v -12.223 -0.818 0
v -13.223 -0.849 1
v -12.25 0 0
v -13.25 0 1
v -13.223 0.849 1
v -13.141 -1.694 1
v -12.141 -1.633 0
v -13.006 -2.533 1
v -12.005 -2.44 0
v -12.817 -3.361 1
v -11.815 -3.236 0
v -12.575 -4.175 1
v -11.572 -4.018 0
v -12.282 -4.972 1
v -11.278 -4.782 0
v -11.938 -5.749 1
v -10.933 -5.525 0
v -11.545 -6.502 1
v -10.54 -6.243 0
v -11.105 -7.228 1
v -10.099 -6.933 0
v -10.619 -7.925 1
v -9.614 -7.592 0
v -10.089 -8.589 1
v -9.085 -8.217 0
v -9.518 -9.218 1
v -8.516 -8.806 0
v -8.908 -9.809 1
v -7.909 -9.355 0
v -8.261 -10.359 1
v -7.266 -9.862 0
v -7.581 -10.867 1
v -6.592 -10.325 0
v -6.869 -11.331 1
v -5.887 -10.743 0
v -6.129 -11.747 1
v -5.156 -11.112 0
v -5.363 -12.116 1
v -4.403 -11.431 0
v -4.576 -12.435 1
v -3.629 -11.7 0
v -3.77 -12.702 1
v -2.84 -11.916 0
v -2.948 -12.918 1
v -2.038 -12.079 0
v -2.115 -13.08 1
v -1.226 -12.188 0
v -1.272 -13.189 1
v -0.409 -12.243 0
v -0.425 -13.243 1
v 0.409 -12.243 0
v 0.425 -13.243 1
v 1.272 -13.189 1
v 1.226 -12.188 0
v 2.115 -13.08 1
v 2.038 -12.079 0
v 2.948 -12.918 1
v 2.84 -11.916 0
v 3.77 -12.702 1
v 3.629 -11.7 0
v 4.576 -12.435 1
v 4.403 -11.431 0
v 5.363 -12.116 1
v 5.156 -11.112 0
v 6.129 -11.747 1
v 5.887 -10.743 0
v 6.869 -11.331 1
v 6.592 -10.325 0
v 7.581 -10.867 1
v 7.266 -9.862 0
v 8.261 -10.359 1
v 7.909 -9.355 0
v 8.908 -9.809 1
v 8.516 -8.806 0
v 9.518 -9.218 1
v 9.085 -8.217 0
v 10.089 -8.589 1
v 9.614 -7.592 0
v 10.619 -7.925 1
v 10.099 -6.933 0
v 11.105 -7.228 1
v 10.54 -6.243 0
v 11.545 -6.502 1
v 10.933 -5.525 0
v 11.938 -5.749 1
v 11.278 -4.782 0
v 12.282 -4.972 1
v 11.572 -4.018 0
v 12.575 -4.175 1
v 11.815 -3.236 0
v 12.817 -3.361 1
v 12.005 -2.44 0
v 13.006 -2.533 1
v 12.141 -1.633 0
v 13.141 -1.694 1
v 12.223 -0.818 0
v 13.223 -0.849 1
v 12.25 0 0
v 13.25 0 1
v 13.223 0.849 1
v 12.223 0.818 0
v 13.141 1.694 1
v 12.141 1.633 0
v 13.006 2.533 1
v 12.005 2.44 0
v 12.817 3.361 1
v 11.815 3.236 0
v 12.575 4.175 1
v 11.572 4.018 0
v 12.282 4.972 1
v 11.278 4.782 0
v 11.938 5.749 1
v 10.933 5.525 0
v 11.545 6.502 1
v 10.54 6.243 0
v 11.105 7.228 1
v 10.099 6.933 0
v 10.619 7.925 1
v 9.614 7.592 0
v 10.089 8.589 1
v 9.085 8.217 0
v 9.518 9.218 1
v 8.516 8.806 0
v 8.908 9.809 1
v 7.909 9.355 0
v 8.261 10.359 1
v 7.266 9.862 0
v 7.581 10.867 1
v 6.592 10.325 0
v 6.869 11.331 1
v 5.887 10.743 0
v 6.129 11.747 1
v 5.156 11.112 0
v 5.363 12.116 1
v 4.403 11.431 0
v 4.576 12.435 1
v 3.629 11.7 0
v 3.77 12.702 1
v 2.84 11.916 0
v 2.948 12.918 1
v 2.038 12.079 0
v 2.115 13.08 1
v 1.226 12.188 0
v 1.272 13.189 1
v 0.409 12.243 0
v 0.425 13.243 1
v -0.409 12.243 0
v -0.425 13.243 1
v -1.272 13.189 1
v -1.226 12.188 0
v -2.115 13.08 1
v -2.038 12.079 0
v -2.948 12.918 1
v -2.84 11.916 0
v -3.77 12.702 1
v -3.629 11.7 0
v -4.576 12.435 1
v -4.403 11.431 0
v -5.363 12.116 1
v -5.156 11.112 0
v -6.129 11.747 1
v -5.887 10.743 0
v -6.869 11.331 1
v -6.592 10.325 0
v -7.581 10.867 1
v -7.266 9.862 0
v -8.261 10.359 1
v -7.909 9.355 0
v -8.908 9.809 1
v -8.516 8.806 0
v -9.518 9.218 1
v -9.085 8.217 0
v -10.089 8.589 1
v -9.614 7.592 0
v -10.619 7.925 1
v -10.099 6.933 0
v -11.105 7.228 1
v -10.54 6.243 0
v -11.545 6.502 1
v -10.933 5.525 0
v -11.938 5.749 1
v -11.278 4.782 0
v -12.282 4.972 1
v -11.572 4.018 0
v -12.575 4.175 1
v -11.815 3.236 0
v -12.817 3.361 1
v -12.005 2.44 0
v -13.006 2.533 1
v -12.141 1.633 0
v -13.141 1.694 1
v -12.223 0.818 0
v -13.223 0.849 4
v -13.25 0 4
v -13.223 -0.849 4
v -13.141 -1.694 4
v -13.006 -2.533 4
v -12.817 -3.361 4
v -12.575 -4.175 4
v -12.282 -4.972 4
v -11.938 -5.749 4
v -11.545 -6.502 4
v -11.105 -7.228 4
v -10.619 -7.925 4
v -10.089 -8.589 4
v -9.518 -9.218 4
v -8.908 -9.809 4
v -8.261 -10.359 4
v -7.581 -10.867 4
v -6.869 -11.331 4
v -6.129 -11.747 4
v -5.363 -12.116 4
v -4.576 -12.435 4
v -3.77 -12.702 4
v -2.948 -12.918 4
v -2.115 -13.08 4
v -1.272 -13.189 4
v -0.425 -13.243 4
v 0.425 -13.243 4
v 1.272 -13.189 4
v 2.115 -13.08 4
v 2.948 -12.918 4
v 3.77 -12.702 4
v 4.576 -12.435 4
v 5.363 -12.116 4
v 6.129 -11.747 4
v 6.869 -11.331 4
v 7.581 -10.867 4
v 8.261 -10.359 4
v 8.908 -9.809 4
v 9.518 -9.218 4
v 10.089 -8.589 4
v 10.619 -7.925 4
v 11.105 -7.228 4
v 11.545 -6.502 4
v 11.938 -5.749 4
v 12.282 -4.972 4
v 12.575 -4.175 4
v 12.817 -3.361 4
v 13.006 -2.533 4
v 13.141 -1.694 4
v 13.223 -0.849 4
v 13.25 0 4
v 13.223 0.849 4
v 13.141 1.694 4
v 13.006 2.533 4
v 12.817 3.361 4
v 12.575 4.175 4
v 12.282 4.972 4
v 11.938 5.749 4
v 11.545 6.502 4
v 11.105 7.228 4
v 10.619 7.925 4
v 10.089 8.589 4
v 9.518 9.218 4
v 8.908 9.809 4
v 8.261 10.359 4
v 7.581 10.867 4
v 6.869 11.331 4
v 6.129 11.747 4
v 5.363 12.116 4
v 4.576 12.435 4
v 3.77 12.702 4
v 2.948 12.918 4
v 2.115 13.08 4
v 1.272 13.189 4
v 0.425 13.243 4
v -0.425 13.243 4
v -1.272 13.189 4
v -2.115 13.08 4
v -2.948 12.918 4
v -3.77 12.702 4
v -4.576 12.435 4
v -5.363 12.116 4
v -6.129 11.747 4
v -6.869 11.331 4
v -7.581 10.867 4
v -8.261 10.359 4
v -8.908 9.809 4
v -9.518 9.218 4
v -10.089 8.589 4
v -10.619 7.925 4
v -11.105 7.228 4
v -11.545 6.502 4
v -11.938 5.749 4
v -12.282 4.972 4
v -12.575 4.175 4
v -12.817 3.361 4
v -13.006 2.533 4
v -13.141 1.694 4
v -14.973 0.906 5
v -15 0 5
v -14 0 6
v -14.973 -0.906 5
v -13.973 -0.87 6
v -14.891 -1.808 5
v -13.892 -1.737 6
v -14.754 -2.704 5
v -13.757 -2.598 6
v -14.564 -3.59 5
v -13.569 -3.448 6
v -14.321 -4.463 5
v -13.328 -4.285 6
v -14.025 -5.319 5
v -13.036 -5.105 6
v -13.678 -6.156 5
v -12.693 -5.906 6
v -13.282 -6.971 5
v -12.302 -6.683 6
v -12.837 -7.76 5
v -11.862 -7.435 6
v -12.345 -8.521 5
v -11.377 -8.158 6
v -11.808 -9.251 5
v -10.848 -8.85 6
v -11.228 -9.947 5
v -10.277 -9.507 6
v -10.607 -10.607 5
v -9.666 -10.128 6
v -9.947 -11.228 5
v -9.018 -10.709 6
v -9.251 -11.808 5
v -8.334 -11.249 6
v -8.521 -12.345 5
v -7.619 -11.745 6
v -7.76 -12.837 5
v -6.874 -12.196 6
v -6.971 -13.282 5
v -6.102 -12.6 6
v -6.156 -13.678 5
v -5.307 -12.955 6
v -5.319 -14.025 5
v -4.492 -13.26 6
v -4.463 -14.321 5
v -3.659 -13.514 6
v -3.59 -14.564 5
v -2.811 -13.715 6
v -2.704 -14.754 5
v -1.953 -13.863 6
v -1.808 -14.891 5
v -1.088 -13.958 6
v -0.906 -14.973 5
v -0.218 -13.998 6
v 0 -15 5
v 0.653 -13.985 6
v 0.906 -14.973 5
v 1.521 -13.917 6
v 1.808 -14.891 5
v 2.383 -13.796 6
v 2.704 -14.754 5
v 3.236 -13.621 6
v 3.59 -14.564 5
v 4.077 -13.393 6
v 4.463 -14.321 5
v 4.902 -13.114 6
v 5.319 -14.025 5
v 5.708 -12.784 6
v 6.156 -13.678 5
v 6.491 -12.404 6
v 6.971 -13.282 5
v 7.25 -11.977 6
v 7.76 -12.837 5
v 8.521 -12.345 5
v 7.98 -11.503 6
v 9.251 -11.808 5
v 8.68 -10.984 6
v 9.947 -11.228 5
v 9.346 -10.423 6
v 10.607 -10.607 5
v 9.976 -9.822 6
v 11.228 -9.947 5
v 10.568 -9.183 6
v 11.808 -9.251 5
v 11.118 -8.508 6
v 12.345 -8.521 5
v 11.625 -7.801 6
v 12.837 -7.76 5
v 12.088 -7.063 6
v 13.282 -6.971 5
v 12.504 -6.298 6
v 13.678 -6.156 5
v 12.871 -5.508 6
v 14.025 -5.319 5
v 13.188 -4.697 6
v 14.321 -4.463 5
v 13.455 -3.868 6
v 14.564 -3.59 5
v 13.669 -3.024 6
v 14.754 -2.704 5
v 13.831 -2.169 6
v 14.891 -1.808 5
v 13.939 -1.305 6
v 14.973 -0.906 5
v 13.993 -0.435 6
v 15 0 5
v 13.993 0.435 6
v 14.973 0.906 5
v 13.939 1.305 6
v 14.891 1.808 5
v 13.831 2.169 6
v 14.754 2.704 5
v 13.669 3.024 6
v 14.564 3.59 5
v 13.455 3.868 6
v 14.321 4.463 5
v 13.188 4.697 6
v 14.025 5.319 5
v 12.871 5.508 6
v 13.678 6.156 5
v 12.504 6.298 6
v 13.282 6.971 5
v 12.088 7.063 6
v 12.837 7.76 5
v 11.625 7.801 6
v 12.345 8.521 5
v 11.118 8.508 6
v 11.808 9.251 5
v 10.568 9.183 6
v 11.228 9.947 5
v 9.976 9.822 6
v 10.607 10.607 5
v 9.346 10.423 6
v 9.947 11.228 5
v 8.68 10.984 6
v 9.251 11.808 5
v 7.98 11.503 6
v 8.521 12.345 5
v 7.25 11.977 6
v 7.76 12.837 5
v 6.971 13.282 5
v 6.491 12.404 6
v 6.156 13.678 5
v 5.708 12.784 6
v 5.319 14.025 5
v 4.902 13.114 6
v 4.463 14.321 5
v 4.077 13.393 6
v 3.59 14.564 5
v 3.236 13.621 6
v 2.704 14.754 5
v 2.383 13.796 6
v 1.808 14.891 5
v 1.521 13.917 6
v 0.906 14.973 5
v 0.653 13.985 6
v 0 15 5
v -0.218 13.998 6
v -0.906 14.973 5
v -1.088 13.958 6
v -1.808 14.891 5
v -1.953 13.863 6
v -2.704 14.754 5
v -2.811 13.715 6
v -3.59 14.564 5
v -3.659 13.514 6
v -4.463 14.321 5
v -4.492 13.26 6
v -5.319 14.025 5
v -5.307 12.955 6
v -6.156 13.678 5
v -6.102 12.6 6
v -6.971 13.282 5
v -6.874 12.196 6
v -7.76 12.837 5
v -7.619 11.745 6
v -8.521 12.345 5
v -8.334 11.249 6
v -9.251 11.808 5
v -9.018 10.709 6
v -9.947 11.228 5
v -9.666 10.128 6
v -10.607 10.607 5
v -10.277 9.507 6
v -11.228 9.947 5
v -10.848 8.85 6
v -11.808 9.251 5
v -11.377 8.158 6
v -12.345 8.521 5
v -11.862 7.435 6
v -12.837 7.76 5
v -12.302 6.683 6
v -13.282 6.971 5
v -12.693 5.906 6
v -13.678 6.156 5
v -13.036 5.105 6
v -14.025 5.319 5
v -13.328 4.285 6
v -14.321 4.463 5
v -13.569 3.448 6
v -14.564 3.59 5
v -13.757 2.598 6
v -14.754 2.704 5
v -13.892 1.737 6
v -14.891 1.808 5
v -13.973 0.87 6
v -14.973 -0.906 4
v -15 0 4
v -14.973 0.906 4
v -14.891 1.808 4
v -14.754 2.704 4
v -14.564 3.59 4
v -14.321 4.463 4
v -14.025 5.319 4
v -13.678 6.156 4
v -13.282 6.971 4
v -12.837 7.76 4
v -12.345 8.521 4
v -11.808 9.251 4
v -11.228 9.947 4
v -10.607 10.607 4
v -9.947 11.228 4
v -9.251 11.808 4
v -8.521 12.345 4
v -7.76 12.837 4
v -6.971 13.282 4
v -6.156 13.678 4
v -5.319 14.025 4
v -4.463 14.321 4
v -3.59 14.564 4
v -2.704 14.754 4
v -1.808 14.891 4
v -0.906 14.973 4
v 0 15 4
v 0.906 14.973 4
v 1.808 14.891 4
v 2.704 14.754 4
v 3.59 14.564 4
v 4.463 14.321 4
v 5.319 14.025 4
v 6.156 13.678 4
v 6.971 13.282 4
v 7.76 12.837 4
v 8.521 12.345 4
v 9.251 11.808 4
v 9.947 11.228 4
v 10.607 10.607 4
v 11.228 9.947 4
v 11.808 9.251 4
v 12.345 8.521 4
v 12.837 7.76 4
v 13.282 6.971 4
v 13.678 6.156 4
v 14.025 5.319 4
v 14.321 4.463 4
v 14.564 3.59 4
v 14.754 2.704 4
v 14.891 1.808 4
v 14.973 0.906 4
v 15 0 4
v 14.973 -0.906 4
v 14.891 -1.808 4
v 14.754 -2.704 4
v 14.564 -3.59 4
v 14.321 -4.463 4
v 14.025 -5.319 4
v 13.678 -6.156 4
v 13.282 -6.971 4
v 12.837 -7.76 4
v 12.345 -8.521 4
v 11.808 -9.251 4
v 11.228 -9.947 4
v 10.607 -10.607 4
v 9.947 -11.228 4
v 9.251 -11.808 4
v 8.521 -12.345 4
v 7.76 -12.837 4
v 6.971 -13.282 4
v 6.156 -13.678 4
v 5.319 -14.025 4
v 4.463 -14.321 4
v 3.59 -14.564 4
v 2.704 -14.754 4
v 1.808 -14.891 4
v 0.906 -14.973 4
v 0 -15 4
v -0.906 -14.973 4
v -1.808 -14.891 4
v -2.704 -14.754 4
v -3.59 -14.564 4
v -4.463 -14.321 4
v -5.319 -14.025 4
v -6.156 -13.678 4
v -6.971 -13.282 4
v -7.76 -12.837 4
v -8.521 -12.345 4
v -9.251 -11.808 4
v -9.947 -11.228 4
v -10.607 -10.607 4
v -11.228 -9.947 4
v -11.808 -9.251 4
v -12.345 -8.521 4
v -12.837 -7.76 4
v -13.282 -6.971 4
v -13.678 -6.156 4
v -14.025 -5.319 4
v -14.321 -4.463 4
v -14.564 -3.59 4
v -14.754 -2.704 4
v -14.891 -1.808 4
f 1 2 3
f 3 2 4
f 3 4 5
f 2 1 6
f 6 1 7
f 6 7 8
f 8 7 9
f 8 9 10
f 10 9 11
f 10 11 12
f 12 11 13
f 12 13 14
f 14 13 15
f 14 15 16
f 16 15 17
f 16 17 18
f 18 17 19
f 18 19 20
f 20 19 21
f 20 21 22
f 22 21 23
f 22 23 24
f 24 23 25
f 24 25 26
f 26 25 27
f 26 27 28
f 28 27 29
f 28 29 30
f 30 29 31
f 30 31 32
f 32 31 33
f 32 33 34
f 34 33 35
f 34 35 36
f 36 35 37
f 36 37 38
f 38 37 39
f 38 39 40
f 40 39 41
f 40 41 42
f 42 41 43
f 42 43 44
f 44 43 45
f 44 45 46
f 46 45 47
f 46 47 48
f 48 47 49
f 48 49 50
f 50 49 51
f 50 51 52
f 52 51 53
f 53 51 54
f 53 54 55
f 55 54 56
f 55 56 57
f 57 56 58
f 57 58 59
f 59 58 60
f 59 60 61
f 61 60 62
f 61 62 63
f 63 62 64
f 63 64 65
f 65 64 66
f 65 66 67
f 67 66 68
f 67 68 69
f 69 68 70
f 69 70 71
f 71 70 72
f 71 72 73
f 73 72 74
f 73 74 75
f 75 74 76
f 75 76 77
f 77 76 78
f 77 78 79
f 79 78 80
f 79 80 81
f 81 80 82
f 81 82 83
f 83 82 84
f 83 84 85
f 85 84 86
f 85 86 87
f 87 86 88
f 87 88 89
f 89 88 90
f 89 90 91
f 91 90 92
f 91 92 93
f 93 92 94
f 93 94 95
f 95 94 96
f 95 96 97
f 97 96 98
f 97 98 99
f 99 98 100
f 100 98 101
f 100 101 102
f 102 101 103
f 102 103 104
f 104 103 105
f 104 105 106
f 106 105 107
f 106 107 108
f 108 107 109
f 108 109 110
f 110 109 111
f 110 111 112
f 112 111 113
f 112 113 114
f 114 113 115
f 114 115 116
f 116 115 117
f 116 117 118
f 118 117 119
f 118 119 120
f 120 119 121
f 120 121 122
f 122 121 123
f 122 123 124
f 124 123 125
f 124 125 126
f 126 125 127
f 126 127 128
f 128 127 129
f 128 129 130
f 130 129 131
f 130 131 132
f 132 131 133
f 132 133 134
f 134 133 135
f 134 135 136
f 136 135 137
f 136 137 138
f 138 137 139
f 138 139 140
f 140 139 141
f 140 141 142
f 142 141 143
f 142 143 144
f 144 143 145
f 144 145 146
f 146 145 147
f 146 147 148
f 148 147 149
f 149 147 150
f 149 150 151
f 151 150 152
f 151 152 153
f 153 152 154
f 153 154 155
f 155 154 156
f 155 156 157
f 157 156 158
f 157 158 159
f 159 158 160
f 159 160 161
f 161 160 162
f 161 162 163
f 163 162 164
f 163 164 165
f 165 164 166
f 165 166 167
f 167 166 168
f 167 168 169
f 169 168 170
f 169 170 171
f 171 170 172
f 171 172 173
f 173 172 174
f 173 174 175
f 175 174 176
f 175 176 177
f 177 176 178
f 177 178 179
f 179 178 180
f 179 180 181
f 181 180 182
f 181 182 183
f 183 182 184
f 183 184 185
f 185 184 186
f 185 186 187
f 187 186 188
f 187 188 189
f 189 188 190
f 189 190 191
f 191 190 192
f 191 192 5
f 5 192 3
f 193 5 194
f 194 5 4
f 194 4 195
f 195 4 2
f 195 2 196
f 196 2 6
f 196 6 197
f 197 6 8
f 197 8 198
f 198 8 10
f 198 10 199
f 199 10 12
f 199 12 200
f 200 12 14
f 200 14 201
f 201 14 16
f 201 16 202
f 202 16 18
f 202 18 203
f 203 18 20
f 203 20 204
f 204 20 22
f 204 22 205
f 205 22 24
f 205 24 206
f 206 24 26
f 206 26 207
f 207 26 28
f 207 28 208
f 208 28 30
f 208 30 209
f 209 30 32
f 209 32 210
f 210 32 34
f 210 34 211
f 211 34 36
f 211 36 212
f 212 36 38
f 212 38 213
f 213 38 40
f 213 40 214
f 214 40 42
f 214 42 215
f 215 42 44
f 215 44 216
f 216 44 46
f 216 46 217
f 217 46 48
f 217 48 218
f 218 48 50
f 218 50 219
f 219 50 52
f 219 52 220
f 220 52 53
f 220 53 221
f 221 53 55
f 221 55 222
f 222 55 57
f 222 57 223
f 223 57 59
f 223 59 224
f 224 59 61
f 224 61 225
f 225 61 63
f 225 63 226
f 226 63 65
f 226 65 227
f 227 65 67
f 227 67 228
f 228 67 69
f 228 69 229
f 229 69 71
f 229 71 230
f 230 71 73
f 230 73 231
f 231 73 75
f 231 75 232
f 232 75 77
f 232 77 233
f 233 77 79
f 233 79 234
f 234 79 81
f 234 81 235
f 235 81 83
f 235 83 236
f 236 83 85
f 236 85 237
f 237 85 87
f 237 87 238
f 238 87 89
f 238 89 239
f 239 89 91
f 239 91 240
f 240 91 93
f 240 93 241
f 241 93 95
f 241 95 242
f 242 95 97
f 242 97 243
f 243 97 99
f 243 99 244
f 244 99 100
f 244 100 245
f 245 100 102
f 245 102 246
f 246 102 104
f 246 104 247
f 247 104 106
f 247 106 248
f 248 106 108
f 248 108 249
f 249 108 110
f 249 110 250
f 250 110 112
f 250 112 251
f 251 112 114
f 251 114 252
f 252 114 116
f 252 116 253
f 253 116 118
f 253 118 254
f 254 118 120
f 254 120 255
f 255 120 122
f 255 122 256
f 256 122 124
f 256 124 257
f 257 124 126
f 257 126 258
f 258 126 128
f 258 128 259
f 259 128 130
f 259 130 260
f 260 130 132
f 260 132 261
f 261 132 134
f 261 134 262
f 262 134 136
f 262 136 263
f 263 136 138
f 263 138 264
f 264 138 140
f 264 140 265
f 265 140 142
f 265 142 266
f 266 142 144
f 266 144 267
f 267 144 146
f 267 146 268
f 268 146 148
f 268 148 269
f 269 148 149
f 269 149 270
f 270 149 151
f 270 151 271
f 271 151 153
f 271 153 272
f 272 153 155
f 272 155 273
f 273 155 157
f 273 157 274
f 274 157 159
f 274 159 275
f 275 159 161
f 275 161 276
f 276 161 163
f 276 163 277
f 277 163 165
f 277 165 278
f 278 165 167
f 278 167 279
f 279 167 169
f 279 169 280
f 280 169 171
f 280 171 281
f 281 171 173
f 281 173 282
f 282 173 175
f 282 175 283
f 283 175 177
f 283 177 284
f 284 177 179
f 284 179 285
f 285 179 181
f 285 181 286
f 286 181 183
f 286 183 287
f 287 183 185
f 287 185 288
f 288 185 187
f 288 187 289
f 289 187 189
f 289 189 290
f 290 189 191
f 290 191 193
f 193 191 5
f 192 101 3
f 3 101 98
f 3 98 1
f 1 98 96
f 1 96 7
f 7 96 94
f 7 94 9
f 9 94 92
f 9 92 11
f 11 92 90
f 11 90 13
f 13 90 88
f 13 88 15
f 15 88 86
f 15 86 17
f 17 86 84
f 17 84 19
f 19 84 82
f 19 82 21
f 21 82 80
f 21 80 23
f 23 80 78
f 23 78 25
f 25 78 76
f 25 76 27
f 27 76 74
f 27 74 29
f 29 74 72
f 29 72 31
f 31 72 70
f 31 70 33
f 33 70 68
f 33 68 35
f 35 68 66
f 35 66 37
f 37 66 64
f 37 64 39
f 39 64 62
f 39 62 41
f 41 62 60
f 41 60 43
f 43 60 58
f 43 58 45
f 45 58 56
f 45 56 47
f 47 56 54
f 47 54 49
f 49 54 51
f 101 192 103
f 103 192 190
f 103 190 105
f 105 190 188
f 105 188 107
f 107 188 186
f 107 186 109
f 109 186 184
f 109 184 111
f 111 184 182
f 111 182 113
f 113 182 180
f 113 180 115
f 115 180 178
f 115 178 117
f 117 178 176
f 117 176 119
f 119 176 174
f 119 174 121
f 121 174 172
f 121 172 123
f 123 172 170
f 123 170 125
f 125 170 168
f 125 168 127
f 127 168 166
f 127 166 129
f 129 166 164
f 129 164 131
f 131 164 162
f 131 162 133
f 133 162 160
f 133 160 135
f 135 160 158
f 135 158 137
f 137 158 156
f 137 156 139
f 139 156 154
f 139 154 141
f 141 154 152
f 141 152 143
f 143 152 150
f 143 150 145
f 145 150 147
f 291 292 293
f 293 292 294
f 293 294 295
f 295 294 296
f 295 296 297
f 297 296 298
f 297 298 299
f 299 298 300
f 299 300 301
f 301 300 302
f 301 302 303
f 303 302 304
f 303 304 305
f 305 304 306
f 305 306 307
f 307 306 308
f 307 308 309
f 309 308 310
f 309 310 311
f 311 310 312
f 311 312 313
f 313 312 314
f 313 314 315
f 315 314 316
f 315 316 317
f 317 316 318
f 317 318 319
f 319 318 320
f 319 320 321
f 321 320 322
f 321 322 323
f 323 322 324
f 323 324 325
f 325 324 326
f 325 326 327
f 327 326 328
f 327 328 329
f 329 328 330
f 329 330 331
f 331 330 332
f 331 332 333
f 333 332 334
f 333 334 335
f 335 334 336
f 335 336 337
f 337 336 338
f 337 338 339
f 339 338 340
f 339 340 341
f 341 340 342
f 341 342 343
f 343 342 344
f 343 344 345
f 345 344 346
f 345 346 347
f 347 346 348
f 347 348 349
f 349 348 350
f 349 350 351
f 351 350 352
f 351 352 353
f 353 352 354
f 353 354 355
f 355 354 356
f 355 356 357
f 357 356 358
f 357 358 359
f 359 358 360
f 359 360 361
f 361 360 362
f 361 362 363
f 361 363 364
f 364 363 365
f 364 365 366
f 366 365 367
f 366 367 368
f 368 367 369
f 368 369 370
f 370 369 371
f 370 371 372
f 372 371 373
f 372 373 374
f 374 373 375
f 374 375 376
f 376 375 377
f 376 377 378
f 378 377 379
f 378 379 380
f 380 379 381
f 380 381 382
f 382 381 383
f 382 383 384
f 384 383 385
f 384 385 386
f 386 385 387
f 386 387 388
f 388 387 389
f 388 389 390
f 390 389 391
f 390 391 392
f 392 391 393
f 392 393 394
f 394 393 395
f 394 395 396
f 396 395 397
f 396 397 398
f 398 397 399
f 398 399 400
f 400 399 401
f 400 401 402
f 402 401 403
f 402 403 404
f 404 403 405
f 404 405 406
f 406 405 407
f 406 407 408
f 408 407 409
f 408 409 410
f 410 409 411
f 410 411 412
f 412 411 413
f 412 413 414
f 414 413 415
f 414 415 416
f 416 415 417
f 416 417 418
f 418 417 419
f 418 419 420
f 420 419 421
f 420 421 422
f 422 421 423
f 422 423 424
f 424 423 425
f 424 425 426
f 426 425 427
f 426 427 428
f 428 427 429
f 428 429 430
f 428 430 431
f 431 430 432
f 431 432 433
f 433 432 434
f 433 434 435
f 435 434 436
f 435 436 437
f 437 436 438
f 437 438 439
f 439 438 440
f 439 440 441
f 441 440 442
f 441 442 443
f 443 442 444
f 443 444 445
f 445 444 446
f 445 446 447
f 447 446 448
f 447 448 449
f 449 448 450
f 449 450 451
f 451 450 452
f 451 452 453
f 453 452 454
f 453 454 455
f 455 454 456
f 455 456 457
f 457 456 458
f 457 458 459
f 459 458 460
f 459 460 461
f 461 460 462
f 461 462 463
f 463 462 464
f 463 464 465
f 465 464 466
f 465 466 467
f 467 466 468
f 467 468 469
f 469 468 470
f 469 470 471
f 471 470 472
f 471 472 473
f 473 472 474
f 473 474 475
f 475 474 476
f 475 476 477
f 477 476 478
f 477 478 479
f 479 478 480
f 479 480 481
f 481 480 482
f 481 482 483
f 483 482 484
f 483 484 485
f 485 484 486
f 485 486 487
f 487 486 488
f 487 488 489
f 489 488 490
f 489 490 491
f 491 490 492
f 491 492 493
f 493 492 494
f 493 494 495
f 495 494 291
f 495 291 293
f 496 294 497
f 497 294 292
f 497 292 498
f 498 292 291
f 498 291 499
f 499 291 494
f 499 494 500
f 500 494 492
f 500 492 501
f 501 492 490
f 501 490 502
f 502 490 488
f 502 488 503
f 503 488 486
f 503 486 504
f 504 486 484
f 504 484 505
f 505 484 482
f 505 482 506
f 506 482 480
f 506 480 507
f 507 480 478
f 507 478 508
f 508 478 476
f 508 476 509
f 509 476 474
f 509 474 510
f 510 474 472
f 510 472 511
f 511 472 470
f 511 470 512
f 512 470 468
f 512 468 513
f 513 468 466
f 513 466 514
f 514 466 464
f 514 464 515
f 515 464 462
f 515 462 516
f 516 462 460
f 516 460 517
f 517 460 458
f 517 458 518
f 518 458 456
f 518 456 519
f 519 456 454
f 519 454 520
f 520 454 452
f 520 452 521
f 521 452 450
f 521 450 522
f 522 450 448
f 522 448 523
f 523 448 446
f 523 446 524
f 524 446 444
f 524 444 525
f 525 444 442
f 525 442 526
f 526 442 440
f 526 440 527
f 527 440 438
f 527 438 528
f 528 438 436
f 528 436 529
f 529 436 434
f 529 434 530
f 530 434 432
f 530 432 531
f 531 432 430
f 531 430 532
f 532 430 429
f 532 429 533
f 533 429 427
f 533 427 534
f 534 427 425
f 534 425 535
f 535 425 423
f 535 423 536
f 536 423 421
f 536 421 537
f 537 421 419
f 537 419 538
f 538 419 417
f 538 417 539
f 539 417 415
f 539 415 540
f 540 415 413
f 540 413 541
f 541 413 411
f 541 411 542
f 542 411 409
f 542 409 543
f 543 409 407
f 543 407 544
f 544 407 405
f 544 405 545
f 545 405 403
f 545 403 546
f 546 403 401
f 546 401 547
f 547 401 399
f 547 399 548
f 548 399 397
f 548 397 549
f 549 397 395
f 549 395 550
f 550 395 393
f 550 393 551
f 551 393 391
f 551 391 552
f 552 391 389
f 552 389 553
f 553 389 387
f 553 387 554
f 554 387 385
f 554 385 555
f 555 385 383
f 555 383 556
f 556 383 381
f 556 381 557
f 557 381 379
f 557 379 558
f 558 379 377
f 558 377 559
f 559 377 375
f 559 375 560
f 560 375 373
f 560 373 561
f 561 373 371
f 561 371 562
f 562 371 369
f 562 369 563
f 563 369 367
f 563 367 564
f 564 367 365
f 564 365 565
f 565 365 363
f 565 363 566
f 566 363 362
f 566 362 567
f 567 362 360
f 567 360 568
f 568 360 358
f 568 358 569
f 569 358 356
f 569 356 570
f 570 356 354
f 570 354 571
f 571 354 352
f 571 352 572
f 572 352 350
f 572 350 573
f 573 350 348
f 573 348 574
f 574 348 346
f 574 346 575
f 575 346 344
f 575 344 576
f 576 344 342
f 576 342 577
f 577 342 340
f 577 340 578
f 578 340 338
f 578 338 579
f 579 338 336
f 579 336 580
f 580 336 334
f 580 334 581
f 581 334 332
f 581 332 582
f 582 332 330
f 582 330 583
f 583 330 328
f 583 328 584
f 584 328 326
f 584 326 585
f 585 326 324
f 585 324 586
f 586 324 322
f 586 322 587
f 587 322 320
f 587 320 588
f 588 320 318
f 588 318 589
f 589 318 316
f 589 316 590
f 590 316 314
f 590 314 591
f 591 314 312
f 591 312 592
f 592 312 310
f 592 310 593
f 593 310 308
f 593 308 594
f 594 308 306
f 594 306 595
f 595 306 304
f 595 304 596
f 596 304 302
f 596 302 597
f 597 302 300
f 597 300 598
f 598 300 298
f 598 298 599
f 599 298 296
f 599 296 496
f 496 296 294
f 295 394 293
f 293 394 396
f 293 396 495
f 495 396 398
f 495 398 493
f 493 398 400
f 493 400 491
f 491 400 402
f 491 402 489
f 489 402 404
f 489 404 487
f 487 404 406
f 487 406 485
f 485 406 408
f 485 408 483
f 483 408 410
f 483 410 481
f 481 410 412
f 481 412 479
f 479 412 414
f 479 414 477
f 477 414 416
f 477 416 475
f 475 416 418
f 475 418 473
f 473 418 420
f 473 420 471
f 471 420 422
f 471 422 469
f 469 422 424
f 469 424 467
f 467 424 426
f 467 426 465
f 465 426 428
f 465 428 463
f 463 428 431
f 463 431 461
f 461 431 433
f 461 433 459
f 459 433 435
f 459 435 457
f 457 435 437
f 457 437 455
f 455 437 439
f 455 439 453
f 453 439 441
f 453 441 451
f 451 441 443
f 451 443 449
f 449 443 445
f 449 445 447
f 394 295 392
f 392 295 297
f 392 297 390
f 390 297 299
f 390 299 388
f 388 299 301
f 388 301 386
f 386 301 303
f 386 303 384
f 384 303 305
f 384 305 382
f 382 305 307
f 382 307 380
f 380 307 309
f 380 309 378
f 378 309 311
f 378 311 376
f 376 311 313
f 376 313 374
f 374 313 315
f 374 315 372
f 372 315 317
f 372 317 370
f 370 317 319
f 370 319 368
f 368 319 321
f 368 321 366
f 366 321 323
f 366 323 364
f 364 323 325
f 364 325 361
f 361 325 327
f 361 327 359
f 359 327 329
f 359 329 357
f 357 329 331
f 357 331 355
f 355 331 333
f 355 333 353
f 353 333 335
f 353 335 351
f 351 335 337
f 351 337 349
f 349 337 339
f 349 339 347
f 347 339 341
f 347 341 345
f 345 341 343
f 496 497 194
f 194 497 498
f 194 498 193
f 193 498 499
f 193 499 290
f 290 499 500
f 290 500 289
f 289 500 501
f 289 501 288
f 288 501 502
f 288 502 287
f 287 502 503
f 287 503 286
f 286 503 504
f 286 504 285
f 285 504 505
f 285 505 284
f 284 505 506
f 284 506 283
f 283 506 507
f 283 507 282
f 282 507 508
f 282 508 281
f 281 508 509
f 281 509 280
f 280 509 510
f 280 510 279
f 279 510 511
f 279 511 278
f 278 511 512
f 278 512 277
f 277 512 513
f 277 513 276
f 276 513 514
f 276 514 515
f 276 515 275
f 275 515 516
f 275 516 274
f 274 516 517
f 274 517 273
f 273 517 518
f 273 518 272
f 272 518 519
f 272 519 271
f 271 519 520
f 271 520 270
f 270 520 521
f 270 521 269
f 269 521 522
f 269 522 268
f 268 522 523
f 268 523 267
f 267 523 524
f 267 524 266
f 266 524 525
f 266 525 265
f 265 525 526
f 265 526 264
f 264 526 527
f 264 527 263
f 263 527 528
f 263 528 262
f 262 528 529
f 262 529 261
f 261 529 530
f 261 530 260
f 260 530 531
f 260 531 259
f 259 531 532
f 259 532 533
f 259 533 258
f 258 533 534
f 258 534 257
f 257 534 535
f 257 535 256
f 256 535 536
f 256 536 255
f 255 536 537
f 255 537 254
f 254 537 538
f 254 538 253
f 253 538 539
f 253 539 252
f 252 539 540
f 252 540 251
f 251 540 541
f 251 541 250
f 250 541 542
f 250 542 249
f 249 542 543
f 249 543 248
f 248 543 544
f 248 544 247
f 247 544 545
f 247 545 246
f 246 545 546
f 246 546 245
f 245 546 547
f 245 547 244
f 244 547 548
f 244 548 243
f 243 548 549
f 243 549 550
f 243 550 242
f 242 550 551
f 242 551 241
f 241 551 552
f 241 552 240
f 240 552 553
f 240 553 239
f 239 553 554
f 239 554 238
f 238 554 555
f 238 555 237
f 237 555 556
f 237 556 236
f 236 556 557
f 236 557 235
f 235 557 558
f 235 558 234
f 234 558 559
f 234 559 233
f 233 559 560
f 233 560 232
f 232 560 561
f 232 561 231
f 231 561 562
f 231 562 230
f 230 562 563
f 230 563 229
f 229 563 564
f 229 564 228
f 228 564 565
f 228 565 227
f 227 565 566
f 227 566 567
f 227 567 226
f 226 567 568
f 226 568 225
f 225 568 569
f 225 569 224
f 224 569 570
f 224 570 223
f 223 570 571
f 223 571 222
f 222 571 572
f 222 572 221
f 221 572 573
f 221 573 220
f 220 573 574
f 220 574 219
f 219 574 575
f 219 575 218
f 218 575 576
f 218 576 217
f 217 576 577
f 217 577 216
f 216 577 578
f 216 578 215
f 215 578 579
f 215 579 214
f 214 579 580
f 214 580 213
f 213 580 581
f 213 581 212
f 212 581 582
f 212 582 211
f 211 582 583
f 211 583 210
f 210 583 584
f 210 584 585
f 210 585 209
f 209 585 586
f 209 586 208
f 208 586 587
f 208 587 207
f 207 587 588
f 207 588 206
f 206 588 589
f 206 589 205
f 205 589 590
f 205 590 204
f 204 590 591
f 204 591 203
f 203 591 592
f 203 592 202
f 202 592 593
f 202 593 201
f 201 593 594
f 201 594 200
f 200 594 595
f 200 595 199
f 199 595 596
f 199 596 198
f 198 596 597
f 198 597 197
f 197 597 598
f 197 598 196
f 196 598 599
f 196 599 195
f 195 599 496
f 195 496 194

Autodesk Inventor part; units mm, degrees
ref_plane "YZ Plane" through (0, 0, 0) normal (1, 0, 0) x (0, 1, 0)
ref_plane "XZ Plane" through (0, 0, 0) normal (0, 1, 0) x (-1, 0, 0)
ref_plane "XY Plane" through (0, 0, 0) normal (0, 0, 1) x (1, 0, 0)
sketch "Sketch1" plane through (0, 0, 0) normal (0, 0, 1) x (1, 0, 0)
  circle A0 centre (0, 0) radius 13.25
  dimension "d0" = 26.5
extrude "Extrusion1" add sketch "Sketch1" along normal blind 4
sketch "Sketch2" plane through (0, 0, 4) normal (0, 0, 1) x (1, 0, 0)
  circle A0 centre (0, 0) radius 15
  dimension "d3" = 30
extrude "Extrusion2" add sketch "Sketch2" along normal blind 2
chamfer "Chamfer1" distance 1 angle 45 1 edges at (-15, 0, 6)
chamfer "Chamfer2" distance 1 angle 45 1 edges at (-13.25, 0, 0)
properties part number "Plug21mm_3DPrint"
